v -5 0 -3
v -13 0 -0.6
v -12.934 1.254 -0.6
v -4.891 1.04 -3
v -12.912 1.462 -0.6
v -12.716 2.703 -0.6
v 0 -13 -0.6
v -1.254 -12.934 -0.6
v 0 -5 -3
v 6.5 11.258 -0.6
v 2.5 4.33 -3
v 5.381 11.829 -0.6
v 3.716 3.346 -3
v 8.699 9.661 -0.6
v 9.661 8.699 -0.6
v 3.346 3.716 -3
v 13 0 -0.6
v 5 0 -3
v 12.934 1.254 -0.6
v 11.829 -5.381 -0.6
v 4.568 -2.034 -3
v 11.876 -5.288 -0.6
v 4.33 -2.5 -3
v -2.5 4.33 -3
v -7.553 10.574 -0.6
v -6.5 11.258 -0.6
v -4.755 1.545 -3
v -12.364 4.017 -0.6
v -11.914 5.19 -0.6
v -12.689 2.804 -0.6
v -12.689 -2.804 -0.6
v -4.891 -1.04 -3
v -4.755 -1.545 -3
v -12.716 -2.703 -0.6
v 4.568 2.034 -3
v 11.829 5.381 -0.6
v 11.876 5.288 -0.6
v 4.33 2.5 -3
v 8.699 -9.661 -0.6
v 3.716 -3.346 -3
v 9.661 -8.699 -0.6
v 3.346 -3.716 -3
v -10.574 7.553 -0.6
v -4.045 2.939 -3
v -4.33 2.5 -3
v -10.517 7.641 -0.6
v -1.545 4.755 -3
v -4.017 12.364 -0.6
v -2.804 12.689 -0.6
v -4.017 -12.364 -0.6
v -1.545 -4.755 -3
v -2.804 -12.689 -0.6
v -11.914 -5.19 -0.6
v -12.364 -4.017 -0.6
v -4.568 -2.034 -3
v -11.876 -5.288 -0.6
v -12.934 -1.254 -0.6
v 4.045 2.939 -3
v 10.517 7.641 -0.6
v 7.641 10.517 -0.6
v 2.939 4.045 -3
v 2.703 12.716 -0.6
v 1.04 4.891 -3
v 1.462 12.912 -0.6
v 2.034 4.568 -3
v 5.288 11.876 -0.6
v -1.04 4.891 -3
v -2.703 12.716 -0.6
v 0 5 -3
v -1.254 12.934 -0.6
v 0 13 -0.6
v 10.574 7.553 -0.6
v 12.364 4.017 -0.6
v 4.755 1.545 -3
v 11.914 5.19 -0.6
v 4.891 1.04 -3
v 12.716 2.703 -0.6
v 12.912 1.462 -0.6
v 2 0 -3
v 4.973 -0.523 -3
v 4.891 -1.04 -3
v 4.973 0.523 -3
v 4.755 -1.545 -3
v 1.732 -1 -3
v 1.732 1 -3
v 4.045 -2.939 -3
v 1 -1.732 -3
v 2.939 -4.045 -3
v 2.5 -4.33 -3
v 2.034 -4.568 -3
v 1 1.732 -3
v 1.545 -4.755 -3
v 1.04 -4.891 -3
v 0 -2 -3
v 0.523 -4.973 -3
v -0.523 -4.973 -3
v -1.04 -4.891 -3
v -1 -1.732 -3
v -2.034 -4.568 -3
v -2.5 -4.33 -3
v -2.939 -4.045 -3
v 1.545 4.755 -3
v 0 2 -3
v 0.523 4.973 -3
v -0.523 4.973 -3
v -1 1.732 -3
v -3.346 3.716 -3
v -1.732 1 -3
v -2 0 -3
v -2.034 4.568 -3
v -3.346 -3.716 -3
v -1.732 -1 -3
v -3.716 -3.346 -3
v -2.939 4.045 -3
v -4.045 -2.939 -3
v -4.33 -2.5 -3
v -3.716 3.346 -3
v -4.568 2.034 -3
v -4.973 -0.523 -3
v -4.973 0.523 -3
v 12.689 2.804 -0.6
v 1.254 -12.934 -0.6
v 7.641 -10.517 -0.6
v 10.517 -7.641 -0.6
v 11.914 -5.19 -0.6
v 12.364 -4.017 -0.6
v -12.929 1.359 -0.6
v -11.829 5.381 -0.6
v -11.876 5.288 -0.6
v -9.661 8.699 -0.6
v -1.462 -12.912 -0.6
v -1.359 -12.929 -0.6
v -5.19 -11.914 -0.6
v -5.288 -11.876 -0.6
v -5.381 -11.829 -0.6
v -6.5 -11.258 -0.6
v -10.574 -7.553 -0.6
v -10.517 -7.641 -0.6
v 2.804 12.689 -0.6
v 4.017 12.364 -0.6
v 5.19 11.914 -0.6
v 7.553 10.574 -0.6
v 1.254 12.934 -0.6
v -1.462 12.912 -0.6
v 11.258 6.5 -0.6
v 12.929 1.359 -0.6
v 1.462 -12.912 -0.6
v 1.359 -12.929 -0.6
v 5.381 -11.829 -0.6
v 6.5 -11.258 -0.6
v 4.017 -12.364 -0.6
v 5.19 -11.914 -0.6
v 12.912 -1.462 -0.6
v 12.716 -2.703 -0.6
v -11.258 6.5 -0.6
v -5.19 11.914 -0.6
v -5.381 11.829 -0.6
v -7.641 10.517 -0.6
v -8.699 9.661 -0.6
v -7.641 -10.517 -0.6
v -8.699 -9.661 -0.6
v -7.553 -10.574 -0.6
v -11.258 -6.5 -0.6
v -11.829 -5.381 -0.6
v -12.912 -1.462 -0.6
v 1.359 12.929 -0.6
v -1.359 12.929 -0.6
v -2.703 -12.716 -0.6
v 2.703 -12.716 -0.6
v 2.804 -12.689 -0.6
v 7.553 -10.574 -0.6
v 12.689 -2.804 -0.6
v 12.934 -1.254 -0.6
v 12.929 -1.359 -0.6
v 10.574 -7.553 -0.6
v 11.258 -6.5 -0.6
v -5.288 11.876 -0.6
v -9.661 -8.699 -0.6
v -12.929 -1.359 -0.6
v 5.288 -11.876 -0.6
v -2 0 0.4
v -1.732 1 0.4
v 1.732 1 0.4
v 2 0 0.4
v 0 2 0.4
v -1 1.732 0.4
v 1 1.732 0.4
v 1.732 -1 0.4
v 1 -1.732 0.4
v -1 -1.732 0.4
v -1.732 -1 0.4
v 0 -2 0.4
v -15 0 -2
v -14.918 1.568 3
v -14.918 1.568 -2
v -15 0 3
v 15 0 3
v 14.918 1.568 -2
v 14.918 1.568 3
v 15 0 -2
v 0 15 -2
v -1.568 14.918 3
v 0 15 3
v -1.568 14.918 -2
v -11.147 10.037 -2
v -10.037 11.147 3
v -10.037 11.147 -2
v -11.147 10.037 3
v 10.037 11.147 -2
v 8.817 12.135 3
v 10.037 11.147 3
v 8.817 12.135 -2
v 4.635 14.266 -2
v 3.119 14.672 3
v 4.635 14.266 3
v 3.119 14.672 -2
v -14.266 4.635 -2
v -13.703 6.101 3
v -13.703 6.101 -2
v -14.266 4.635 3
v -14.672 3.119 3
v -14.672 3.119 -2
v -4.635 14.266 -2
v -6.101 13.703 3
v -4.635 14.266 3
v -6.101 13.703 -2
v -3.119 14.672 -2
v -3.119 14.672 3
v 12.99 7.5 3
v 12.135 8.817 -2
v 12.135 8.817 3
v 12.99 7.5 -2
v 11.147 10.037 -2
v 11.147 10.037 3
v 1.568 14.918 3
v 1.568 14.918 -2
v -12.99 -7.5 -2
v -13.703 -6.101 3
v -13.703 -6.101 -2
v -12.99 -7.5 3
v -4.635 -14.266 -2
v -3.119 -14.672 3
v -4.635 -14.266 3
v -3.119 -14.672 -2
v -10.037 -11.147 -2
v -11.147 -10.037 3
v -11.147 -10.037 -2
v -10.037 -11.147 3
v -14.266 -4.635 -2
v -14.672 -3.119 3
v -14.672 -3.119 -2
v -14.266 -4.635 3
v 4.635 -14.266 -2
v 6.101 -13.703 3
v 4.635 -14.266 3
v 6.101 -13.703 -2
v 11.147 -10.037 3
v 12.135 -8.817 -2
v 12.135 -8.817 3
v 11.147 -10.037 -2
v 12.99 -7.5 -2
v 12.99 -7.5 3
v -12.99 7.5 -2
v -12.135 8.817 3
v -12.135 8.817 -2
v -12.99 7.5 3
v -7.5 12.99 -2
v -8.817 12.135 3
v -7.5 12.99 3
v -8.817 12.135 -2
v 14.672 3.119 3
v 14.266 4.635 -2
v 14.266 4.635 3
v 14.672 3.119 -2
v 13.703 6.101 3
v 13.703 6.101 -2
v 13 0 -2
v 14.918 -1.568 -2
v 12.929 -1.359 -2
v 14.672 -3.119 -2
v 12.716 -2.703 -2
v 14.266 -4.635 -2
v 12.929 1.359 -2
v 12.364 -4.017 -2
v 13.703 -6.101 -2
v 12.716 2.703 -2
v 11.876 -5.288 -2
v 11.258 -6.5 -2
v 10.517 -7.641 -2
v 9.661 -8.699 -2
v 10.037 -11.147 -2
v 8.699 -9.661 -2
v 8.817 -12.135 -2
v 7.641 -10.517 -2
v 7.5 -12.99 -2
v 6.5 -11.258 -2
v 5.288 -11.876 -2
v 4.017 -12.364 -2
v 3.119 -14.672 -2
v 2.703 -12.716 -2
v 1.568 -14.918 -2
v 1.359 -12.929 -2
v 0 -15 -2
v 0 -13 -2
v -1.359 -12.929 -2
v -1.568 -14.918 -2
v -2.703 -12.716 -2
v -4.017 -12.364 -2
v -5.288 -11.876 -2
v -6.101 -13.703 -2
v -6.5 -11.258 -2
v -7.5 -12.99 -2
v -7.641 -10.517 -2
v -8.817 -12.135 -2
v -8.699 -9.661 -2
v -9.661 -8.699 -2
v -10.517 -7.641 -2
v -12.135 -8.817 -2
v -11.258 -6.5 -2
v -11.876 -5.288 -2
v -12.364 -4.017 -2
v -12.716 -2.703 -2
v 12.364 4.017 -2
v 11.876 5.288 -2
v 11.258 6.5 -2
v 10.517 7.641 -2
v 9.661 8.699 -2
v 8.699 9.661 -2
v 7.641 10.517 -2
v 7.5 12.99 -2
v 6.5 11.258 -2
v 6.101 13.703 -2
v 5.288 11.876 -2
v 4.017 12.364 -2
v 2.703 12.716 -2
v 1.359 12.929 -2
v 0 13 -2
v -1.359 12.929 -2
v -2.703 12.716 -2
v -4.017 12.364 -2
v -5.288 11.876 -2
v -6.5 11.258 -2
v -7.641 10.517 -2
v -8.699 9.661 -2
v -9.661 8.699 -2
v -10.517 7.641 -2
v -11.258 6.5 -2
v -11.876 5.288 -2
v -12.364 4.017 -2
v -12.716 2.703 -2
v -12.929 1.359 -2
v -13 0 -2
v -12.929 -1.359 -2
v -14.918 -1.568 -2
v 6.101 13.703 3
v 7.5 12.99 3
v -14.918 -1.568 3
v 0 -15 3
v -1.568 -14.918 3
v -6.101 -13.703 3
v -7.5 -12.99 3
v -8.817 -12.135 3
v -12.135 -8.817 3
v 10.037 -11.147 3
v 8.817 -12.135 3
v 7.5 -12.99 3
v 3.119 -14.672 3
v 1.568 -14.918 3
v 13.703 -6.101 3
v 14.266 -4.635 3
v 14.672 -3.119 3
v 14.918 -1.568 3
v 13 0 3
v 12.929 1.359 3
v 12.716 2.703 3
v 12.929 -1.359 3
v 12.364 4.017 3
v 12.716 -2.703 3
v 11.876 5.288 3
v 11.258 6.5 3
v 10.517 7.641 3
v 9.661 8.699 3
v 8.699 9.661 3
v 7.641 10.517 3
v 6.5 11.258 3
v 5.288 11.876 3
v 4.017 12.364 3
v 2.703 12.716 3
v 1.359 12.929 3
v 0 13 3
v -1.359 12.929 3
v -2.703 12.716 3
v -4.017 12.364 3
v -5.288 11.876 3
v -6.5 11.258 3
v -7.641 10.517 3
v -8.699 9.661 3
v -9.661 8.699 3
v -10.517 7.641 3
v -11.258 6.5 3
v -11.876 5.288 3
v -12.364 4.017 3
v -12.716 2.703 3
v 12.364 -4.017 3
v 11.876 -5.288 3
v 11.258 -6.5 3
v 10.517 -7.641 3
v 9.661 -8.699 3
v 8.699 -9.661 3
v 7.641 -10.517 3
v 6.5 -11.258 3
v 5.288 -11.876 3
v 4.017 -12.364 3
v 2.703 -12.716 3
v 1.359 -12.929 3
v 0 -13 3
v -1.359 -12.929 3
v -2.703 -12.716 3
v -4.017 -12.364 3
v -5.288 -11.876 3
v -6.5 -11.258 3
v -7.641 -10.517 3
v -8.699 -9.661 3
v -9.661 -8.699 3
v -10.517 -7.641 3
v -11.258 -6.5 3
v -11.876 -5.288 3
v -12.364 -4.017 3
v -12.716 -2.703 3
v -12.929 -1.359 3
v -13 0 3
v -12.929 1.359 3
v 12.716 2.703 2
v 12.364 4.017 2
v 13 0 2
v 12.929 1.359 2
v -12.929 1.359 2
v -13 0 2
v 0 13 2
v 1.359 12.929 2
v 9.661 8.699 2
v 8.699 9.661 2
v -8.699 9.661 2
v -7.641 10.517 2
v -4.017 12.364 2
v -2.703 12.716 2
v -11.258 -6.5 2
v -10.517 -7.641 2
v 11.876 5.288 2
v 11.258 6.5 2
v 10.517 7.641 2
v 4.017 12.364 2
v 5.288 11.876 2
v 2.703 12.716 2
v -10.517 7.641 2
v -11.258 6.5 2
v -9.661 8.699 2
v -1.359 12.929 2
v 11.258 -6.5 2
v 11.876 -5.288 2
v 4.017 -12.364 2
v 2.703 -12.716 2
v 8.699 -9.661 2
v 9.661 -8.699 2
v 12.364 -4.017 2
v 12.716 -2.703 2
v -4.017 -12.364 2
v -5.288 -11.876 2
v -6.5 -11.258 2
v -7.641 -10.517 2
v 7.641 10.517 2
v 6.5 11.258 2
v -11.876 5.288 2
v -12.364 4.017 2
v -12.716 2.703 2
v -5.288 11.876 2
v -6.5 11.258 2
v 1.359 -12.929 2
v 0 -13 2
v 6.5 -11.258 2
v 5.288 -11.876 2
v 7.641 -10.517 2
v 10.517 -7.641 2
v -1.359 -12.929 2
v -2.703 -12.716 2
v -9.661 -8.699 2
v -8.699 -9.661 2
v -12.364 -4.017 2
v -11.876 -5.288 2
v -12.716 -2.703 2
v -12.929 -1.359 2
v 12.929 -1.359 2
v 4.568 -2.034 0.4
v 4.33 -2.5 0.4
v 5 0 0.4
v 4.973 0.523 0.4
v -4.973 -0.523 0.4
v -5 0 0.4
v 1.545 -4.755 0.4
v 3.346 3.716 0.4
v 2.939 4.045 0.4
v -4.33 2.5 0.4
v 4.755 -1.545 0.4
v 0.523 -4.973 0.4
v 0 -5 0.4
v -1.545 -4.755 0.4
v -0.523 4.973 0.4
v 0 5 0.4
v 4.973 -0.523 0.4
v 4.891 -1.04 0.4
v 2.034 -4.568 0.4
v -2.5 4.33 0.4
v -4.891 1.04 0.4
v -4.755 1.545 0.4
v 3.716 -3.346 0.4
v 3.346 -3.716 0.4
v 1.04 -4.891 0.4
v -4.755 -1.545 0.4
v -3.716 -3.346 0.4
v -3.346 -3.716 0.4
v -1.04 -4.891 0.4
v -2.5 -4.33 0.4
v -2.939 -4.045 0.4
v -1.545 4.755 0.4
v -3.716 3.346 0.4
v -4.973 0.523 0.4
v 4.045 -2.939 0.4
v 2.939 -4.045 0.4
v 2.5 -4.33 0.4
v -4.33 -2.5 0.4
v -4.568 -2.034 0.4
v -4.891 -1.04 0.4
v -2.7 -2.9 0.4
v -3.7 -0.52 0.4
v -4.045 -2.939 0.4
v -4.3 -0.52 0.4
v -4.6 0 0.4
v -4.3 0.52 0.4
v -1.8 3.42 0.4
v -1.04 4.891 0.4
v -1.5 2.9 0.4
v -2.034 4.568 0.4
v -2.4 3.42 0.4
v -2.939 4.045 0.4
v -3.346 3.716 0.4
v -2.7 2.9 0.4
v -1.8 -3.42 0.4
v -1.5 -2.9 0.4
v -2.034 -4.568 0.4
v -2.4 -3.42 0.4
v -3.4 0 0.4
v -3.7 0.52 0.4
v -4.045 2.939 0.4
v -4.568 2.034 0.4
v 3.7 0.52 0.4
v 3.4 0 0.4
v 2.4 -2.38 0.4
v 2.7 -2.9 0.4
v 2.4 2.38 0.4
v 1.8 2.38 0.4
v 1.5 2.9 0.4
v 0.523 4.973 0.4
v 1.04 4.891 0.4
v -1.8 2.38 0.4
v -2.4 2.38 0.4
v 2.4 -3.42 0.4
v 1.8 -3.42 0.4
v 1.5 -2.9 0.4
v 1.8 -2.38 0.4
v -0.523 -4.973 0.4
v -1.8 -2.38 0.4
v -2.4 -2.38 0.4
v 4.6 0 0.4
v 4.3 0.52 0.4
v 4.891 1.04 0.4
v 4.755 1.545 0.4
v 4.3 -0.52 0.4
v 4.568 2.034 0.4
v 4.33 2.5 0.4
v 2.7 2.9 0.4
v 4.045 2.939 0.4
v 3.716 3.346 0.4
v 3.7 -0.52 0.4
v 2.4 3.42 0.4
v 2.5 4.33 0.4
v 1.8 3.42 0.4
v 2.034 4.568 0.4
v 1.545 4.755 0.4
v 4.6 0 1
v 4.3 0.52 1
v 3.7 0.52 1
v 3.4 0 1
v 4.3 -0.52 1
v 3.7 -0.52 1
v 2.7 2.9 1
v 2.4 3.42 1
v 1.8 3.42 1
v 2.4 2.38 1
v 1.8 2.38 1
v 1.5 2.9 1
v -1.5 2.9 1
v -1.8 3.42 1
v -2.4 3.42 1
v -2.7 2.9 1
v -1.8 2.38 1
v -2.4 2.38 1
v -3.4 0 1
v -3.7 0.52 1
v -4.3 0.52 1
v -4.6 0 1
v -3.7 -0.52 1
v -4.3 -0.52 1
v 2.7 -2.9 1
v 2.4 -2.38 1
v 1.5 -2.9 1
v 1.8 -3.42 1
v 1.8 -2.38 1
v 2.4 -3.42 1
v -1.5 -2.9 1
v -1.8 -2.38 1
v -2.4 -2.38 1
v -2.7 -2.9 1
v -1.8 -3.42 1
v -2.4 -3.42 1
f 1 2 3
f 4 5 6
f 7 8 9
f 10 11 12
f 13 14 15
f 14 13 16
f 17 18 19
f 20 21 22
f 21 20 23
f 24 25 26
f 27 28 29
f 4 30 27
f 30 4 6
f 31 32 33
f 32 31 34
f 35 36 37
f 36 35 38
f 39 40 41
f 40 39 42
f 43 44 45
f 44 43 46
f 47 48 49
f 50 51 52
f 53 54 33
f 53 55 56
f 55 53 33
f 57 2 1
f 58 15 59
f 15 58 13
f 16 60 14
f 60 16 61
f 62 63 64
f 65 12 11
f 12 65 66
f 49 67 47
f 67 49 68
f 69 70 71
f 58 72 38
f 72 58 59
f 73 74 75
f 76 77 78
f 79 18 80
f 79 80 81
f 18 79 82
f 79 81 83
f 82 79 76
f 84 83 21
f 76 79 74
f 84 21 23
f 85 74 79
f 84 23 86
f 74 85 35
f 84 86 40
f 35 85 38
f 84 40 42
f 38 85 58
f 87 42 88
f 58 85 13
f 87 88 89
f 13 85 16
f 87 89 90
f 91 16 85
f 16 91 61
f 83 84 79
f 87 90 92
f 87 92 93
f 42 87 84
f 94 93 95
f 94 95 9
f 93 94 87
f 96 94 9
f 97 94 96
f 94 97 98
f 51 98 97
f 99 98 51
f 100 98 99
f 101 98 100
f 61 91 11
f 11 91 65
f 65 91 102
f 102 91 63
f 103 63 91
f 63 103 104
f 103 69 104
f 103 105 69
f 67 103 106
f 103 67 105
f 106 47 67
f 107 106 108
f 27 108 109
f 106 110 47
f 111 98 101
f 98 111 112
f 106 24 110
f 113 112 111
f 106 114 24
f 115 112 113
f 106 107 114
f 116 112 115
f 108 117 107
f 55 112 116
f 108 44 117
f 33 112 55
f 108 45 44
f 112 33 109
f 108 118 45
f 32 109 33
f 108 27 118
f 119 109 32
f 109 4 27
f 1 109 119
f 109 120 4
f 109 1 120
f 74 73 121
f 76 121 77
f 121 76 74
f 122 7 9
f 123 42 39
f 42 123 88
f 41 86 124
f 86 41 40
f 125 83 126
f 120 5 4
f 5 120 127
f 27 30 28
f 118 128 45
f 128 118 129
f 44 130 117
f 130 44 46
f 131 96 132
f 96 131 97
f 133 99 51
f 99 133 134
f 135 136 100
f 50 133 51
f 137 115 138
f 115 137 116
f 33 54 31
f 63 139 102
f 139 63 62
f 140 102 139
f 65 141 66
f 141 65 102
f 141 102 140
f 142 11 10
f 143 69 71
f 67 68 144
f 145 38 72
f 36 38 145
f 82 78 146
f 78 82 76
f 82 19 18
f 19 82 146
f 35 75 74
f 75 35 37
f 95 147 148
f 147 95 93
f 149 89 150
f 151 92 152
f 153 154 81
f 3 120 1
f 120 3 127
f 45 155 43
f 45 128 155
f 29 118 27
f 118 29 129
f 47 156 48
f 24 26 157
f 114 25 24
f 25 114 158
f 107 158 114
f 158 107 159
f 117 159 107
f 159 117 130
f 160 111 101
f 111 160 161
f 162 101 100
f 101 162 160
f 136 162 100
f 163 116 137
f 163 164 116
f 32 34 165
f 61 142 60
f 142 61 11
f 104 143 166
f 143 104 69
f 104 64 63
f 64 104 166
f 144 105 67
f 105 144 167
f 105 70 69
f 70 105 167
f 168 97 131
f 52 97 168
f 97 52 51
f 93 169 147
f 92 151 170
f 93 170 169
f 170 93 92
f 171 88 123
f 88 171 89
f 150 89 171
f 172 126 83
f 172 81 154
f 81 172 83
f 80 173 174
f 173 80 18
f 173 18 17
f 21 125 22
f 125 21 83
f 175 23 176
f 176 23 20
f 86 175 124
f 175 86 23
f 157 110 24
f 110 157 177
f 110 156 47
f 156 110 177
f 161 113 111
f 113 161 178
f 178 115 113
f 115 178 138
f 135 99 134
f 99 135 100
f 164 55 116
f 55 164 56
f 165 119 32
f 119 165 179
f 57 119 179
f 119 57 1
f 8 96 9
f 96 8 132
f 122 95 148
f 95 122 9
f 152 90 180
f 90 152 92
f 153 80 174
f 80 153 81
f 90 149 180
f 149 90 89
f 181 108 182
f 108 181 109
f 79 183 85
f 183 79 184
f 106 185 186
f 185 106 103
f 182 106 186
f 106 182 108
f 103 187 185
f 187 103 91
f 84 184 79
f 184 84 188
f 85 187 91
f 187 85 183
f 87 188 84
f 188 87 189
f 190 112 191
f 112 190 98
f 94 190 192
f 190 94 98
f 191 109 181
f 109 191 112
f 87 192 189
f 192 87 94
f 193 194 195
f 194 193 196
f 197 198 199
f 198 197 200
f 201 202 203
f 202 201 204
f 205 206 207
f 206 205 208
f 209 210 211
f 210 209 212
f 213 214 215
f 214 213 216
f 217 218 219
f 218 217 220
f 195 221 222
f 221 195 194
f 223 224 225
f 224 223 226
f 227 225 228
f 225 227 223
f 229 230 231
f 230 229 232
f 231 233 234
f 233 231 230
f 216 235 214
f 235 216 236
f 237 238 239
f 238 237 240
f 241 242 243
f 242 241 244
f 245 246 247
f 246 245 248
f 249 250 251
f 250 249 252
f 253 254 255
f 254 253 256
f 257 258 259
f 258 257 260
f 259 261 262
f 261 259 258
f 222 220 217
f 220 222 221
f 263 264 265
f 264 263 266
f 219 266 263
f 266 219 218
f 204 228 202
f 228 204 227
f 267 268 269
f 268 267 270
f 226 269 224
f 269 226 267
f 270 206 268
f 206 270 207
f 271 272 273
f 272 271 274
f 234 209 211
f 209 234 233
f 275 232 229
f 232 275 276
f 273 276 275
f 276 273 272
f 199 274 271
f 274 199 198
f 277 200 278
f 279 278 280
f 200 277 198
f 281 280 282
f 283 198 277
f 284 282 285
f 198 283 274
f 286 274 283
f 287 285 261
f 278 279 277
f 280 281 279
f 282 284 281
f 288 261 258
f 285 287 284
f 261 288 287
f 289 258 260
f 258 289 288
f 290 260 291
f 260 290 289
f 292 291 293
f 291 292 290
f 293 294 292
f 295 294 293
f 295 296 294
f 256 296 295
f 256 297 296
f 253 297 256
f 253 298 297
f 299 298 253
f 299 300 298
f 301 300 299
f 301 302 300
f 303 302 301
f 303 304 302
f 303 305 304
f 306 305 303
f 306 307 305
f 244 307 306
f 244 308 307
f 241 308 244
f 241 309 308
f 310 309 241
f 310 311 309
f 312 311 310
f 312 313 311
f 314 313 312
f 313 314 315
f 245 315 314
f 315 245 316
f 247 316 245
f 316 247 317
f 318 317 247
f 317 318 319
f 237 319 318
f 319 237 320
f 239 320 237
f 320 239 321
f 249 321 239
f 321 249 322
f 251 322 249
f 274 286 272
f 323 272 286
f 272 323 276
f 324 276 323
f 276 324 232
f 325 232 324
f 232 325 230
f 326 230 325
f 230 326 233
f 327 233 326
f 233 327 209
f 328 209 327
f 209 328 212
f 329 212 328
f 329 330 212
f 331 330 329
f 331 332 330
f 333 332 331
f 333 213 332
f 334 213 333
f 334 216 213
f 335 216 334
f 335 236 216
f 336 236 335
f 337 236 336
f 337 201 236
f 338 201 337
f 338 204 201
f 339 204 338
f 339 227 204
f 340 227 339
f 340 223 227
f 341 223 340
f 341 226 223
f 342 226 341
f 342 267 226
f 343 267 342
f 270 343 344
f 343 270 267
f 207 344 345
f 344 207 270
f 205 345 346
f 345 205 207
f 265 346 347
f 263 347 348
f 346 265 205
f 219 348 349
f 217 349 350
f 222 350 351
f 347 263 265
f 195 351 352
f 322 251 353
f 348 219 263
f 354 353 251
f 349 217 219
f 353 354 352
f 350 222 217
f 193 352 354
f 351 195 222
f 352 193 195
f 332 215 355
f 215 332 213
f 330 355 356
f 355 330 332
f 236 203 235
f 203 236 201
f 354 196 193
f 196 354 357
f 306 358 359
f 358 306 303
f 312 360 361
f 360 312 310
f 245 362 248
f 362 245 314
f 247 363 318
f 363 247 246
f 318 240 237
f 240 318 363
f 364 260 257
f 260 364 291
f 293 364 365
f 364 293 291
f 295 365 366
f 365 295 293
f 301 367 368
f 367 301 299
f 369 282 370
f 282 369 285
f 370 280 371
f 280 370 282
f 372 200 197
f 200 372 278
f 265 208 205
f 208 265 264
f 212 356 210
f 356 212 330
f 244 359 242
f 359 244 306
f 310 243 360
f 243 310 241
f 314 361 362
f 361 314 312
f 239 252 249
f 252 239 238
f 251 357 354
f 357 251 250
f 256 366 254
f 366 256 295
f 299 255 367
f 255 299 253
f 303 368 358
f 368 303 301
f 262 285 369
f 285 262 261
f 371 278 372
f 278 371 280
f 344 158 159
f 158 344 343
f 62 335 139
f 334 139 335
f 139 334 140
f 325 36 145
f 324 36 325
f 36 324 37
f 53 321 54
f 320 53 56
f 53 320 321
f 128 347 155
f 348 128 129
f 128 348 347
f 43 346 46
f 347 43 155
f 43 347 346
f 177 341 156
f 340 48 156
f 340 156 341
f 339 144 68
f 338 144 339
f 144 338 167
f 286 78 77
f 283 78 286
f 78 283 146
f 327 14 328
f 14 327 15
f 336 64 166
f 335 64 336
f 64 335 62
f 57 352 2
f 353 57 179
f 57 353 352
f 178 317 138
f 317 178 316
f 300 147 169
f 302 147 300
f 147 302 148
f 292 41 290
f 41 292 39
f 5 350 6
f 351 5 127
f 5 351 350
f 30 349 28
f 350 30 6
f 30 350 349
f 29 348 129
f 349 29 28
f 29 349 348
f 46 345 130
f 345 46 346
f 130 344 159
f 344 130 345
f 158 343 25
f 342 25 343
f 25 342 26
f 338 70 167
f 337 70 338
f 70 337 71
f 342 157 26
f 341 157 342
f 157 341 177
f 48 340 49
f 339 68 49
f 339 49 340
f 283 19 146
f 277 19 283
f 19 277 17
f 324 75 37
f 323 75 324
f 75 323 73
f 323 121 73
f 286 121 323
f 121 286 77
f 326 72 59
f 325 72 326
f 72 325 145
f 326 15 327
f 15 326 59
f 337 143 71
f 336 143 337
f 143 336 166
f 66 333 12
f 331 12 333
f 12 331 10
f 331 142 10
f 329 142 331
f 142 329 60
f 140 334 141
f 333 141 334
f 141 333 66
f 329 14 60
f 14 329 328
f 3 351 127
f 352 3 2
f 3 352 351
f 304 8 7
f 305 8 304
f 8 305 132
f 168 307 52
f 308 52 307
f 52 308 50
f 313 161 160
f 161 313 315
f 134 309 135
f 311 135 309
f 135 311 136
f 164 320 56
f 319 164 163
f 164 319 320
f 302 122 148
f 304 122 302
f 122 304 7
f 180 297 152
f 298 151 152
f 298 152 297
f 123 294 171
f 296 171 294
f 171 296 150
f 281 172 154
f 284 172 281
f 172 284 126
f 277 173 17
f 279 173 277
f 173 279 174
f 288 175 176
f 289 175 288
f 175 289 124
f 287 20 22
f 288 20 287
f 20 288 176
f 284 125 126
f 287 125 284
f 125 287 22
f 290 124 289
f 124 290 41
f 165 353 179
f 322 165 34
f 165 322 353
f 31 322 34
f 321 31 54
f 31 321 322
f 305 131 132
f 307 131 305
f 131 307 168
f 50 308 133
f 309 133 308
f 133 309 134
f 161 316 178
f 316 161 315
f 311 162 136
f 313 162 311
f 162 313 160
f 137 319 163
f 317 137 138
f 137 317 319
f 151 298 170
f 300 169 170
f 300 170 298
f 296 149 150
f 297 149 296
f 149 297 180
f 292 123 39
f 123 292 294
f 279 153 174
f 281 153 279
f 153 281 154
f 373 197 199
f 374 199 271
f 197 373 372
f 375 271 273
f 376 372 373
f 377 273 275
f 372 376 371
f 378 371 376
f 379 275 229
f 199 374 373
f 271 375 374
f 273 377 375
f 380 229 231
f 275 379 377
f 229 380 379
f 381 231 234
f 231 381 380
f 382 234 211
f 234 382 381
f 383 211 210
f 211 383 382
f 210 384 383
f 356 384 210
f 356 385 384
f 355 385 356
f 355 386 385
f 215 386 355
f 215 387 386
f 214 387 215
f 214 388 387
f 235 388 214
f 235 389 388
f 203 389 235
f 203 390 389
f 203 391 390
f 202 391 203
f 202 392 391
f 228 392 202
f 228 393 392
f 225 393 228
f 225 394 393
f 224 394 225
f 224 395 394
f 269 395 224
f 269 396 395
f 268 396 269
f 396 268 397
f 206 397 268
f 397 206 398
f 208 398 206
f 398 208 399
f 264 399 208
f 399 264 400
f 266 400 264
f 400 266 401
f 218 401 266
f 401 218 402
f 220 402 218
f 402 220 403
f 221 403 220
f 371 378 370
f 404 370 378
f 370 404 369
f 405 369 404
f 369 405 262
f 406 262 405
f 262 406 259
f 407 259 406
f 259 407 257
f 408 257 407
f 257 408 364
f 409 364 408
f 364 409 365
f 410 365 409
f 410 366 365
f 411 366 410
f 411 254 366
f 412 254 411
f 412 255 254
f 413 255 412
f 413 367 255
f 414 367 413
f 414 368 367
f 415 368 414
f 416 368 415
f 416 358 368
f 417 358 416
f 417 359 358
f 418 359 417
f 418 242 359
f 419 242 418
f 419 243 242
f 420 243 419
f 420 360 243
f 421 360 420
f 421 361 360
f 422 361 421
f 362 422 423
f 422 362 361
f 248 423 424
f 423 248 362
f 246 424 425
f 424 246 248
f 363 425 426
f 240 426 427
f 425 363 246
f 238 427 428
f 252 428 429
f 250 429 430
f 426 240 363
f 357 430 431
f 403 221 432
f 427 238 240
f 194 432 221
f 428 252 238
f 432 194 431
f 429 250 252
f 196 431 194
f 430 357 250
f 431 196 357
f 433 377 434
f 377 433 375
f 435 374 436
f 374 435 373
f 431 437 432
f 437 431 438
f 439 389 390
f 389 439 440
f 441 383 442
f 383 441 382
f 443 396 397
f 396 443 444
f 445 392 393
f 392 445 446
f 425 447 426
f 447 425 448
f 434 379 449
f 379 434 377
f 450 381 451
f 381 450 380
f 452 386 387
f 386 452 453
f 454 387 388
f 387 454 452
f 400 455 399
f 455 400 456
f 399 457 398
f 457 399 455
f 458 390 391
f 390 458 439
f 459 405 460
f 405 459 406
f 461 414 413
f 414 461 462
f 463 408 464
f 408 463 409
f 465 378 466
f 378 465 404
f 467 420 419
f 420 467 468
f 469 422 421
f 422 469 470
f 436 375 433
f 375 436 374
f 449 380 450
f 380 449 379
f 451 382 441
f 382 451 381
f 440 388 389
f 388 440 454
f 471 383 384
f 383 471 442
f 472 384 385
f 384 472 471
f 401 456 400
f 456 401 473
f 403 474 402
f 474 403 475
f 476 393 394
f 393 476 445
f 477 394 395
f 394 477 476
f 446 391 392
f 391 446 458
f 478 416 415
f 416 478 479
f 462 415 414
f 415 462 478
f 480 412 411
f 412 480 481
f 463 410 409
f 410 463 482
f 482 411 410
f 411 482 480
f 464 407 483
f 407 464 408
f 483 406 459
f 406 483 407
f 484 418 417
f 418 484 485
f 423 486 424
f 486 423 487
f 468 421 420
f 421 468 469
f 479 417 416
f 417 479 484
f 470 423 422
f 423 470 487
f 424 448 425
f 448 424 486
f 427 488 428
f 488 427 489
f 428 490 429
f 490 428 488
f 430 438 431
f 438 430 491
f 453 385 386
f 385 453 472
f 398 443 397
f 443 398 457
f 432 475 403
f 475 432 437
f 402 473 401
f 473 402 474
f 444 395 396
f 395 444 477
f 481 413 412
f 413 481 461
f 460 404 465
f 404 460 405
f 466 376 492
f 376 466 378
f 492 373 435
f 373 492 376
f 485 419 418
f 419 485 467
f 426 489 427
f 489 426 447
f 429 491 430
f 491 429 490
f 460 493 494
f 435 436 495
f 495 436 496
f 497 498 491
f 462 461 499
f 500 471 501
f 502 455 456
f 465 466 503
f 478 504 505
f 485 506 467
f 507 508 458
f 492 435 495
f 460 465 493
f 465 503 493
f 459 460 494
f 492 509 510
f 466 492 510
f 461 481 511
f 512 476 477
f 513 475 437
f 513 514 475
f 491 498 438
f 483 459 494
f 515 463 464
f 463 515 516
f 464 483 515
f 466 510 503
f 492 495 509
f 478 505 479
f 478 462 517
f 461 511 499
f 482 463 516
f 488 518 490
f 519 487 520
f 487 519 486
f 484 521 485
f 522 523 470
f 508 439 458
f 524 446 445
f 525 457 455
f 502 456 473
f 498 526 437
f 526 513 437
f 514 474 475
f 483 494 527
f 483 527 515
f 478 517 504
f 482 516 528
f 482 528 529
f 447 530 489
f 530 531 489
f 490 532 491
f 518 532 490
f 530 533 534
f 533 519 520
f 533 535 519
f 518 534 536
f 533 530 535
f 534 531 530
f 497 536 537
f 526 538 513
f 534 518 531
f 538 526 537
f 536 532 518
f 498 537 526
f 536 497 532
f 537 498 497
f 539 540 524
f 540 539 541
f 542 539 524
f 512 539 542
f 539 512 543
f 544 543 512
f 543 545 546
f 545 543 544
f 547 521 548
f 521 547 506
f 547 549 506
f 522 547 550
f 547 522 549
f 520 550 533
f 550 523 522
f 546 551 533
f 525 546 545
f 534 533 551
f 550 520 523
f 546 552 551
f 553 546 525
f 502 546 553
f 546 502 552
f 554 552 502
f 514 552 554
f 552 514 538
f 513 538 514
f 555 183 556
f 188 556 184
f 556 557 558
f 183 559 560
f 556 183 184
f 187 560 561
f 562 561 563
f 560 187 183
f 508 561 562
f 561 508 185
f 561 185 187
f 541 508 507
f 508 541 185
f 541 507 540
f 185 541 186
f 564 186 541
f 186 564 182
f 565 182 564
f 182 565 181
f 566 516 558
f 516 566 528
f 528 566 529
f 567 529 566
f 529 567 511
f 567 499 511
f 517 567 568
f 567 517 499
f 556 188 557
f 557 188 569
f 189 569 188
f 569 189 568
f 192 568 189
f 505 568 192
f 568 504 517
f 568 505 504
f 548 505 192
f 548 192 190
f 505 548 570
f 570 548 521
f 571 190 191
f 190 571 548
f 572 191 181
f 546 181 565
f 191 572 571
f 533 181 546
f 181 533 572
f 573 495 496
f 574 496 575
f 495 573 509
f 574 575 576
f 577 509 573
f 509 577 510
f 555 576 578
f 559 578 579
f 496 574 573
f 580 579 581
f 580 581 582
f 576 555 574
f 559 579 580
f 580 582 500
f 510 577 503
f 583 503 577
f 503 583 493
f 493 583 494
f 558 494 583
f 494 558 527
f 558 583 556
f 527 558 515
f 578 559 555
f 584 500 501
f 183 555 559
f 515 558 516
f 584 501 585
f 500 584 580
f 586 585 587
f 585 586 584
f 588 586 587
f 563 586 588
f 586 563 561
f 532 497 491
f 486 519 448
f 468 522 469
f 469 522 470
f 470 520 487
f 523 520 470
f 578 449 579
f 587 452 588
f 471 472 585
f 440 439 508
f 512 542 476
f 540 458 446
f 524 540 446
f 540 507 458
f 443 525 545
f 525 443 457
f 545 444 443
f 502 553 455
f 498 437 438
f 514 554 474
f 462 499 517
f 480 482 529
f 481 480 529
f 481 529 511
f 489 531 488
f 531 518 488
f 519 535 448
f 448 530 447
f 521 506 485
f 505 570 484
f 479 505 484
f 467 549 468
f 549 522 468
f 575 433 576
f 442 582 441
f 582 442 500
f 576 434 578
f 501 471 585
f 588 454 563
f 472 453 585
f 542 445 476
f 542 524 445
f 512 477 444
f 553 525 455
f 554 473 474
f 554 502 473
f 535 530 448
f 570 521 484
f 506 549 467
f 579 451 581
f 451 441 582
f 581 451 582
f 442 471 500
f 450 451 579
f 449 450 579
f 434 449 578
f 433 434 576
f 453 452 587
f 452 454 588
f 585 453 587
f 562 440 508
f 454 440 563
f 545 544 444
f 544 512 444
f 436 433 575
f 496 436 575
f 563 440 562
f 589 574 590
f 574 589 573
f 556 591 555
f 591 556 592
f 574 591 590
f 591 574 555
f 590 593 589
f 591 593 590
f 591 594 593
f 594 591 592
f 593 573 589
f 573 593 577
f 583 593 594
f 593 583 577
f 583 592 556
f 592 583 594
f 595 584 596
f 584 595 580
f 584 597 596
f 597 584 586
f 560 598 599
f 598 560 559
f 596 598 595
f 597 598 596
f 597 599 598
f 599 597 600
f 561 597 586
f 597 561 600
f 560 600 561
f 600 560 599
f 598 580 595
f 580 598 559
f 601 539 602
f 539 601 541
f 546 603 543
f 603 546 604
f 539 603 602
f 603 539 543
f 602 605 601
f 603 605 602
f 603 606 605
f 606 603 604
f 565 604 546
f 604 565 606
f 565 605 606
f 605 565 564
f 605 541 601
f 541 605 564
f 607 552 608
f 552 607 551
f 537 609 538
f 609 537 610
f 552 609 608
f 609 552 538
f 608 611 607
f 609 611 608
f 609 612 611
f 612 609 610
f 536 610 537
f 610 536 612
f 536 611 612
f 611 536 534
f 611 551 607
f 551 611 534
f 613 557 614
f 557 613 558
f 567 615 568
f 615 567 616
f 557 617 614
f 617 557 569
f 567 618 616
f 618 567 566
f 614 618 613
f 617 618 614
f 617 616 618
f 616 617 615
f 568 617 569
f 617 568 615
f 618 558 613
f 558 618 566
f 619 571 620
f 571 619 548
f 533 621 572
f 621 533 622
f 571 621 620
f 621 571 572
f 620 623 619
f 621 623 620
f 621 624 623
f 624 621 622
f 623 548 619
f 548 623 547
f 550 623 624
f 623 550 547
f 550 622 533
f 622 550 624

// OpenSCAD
rotate([0,180,0]){
difference(){
    cylinder(3,15,5,$fn=60);
    cylinder(4,2,2,$fn=12);
}//dif


difference(){
    cylinder(2,15,15,$fn=60);
    cylinder(4,13,13,$fn=60);
}//dif
}//rotate

translate([0,0,0])
{
    difference(){
        cylinder(3,15,15,$fn=60);
        cylinder(4,2,2,$fn=12);  
        translate([0,0,2])    
            cylinder(4,13,13,$fn=60);
        translate([0,0,0.4])    
            cylinder(1.6,5,13,$fn=60);
    }
    translate([4,0,0])
        cylinder(1,0.6,0.6,$fn=6);    
    translate([2.1,2.9,0])
        cylinder(1,0.6,0.6,$fn=6);
    translate([-2.1,2.9,0])
        cylinder(1,0.6,0.6,$fn=6);
    translate([-4,0,0])
        cylinder(1,0.6,0.6,$fn=6);
    translate([2.1,-2.9,0])
        cylinder(1,0.6,0.6,$fn=6);
    translate([-2.1,-2.9,0])
        cylinder(1,0.6,0.6,$fn=6);
}//transform
